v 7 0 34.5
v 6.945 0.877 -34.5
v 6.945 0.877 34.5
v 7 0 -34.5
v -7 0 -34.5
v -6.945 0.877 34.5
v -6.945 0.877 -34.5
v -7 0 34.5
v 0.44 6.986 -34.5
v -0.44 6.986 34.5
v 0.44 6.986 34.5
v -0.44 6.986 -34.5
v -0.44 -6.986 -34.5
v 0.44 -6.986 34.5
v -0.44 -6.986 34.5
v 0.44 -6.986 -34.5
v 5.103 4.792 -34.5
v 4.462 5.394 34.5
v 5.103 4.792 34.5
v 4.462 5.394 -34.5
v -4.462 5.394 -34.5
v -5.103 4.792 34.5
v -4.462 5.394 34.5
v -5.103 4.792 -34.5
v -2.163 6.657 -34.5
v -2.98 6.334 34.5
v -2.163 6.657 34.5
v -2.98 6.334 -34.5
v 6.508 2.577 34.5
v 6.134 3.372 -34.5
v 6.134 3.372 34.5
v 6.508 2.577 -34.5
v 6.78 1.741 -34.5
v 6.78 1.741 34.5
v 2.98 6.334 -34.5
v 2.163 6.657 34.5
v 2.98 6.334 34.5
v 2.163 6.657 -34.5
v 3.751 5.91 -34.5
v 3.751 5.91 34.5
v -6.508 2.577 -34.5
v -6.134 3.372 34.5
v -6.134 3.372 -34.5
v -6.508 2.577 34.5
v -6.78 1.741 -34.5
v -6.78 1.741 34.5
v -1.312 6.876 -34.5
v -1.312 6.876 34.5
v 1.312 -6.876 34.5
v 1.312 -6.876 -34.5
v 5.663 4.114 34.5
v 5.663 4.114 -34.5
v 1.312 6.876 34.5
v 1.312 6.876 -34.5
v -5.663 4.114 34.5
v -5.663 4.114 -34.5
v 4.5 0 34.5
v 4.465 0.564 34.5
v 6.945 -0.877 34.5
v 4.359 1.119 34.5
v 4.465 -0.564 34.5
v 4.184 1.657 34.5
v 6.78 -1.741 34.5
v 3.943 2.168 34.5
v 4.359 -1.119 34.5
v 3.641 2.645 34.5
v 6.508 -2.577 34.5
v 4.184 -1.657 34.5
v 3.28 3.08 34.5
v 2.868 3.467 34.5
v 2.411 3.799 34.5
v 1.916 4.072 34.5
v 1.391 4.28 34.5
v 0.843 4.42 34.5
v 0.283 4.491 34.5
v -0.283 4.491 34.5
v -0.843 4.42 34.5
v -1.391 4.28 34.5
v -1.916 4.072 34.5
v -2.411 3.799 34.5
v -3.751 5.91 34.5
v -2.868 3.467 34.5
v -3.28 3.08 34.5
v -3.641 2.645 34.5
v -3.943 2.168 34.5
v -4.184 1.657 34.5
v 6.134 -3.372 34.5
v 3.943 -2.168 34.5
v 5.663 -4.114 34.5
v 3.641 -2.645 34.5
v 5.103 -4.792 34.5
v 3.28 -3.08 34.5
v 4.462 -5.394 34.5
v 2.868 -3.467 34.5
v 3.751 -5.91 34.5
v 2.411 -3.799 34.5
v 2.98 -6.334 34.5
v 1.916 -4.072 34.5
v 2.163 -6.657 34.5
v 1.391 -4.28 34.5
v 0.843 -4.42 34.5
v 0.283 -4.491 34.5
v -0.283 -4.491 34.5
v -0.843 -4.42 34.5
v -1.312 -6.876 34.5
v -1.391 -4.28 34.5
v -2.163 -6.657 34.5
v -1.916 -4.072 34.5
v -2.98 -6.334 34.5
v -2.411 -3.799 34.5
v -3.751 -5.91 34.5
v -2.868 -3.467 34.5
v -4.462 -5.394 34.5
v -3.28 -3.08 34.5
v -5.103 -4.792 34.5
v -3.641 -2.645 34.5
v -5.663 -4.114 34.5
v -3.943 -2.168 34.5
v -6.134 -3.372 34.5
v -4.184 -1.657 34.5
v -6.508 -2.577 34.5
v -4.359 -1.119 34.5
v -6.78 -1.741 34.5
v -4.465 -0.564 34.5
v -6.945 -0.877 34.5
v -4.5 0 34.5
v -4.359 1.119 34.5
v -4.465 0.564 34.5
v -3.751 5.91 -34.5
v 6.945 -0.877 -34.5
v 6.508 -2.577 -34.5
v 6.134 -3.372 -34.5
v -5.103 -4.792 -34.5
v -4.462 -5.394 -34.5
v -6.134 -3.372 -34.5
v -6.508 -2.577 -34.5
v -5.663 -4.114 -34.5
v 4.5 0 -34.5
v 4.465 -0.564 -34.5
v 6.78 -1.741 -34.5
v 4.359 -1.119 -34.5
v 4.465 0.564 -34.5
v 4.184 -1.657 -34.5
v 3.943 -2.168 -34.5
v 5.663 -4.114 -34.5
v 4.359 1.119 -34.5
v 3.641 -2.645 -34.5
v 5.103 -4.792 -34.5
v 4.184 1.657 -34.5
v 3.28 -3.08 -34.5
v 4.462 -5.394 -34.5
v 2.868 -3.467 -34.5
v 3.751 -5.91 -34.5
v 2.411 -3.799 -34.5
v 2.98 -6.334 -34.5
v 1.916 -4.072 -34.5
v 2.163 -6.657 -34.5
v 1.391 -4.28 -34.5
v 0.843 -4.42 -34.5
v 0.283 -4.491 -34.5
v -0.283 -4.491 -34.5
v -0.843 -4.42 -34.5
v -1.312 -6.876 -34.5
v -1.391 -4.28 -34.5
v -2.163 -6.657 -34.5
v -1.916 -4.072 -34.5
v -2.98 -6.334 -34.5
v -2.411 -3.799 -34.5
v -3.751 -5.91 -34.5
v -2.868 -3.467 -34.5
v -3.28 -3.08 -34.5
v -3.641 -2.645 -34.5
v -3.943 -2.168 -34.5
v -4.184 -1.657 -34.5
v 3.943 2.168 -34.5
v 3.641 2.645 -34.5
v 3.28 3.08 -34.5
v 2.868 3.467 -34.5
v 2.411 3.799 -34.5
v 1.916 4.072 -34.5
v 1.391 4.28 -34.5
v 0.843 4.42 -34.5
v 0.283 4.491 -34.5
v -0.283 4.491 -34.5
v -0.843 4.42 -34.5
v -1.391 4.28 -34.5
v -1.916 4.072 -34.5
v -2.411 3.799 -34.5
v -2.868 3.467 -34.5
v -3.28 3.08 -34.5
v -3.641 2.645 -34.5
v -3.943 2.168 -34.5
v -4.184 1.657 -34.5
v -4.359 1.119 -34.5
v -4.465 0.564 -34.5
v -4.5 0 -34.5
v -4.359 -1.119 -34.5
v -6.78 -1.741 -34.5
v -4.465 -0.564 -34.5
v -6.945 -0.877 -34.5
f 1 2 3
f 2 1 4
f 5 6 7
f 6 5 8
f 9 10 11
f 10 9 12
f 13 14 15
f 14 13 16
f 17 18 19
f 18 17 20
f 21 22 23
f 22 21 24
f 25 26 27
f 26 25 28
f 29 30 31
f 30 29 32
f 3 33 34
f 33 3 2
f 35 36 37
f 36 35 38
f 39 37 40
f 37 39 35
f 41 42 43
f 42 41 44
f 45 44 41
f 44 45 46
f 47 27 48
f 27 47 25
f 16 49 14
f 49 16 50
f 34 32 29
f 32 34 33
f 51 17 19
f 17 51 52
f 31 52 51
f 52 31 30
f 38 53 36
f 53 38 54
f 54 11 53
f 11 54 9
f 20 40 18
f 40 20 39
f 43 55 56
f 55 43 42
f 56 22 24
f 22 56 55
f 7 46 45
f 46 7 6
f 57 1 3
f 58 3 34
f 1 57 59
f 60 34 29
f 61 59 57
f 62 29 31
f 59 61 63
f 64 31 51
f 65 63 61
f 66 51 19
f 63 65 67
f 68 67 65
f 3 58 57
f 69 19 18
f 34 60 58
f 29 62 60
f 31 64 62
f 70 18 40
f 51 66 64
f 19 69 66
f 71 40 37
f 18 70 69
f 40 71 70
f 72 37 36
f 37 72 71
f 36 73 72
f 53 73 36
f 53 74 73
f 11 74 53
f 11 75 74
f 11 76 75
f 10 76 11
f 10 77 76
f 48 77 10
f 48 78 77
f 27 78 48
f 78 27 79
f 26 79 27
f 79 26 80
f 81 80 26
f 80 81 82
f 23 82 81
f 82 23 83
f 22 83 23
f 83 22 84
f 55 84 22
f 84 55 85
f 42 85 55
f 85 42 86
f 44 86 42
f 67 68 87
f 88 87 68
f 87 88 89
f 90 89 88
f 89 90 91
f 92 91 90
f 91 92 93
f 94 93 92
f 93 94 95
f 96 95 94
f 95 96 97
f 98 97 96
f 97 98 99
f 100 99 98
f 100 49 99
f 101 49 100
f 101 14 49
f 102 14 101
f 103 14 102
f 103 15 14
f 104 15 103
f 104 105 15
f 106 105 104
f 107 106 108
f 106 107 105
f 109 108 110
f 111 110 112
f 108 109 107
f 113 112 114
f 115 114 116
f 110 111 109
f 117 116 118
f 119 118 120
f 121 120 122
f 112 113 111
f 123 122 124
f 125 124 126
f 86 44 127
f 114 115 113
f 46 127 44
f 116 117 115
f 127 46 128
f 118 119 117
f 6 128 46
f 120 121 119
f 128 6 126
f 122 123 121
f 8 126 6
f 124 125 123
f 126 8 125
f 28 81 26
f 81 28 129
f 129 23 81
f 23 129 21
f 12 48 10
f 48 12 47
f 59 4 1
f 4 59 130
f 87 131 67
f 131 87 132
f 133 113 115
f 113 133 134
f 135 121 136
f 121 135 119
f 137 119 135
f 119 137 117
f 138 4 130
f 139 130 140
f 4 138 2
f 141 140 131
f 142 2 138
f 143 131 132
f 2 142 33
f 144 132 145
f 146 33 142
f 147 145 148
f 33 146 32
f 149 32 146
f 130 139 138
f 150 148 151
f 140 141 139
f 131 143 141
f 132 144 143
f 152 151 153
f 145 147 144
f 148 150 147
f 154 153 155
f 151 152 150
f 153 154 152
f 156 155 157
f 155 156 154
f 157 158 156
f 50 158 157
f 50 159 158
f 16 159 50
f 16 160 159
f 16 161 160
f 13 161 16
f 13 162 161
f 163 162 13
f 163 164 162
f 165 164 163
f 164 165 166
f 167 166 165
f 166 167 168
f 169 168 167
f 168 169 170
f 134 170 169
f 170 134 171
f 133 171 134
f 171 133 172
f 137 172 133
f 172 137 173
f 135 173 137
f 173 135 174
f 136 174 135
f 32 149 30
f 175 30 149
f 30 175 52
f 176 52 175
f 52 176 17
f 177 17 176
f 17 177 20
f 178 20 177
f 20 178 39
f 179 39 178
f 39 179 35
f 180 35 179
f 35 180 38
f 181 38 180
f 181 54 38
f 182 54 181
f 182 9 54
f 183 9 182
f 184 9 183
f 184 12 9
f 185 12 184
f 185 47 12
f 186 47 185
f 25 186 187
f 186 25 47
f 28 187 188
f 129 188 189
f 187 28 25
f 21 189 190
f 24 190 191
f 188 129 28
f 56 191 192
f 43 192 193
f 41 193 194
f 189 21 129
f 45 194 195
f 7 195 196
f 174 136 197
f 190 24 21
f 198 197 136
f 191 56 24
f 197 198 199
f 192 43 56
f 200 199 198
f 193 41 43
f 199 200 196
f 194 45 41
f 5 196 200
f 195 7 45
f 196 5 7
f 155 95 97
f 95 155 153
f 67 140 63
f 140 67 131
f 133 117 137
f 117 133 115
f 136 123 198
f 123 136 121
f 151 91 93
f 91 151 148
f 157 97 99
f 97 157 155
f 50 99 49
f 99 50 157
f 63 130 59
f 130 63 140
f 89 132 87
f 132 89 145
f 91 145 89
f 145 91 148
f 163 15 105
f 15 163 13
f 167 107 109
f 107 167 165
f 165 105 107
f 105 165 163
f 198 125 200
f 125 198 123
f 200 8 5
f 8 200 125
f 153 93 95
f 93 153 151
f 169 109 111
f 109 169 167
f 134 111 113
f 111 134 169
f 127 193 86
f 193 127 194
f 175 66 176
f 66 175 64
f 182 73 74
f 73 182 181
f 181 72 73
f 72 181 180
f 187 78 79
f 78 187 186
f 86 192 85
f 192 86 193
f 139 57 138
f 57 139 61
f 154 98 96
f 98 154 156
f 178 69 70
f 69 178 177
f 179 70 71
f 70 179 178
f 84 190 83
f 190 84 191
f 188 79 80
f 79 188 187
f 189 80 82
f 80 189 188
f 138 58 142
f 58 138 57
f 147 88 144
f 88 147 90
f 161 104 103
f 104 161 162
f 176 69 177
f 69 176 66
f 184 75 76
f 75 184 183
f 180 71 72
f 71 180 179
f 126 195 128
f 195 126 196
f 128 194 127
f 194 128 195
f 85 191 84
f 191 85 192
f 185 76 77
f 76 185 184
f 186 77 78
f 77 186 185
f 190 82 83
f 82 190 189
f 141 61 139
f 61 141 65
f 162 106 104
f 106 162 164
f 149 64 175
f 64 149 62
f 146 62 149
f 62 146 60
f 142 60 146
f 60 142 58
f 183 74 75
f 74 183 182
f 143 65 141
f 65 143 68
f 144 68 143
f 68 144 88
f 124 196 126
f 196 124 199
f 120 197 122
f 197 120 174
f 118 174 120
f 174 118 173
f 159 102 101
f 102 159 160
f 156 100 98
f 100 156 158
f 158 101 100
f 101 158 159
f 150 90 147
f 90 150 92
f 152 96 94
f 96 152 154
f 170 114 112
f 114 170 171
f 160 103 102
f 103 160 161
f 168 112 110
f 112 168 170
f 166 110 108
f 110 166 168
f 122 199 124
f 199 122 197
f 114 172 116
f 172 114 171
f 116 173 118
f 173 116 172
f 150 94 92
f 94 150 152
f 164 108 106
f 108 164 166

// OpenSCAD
$fn = 50;


difference() {
	union() {
		translate(v = [0, 0, -34.5000000000]) {
			cylinder(h = 69, r = 7.0000000000);
		}
	}
	union() {
		translate(v = [0, 0, -100.0000000000]) {
			cylinder(h = 200, r = 4.5000000000);
		}
	}
}
